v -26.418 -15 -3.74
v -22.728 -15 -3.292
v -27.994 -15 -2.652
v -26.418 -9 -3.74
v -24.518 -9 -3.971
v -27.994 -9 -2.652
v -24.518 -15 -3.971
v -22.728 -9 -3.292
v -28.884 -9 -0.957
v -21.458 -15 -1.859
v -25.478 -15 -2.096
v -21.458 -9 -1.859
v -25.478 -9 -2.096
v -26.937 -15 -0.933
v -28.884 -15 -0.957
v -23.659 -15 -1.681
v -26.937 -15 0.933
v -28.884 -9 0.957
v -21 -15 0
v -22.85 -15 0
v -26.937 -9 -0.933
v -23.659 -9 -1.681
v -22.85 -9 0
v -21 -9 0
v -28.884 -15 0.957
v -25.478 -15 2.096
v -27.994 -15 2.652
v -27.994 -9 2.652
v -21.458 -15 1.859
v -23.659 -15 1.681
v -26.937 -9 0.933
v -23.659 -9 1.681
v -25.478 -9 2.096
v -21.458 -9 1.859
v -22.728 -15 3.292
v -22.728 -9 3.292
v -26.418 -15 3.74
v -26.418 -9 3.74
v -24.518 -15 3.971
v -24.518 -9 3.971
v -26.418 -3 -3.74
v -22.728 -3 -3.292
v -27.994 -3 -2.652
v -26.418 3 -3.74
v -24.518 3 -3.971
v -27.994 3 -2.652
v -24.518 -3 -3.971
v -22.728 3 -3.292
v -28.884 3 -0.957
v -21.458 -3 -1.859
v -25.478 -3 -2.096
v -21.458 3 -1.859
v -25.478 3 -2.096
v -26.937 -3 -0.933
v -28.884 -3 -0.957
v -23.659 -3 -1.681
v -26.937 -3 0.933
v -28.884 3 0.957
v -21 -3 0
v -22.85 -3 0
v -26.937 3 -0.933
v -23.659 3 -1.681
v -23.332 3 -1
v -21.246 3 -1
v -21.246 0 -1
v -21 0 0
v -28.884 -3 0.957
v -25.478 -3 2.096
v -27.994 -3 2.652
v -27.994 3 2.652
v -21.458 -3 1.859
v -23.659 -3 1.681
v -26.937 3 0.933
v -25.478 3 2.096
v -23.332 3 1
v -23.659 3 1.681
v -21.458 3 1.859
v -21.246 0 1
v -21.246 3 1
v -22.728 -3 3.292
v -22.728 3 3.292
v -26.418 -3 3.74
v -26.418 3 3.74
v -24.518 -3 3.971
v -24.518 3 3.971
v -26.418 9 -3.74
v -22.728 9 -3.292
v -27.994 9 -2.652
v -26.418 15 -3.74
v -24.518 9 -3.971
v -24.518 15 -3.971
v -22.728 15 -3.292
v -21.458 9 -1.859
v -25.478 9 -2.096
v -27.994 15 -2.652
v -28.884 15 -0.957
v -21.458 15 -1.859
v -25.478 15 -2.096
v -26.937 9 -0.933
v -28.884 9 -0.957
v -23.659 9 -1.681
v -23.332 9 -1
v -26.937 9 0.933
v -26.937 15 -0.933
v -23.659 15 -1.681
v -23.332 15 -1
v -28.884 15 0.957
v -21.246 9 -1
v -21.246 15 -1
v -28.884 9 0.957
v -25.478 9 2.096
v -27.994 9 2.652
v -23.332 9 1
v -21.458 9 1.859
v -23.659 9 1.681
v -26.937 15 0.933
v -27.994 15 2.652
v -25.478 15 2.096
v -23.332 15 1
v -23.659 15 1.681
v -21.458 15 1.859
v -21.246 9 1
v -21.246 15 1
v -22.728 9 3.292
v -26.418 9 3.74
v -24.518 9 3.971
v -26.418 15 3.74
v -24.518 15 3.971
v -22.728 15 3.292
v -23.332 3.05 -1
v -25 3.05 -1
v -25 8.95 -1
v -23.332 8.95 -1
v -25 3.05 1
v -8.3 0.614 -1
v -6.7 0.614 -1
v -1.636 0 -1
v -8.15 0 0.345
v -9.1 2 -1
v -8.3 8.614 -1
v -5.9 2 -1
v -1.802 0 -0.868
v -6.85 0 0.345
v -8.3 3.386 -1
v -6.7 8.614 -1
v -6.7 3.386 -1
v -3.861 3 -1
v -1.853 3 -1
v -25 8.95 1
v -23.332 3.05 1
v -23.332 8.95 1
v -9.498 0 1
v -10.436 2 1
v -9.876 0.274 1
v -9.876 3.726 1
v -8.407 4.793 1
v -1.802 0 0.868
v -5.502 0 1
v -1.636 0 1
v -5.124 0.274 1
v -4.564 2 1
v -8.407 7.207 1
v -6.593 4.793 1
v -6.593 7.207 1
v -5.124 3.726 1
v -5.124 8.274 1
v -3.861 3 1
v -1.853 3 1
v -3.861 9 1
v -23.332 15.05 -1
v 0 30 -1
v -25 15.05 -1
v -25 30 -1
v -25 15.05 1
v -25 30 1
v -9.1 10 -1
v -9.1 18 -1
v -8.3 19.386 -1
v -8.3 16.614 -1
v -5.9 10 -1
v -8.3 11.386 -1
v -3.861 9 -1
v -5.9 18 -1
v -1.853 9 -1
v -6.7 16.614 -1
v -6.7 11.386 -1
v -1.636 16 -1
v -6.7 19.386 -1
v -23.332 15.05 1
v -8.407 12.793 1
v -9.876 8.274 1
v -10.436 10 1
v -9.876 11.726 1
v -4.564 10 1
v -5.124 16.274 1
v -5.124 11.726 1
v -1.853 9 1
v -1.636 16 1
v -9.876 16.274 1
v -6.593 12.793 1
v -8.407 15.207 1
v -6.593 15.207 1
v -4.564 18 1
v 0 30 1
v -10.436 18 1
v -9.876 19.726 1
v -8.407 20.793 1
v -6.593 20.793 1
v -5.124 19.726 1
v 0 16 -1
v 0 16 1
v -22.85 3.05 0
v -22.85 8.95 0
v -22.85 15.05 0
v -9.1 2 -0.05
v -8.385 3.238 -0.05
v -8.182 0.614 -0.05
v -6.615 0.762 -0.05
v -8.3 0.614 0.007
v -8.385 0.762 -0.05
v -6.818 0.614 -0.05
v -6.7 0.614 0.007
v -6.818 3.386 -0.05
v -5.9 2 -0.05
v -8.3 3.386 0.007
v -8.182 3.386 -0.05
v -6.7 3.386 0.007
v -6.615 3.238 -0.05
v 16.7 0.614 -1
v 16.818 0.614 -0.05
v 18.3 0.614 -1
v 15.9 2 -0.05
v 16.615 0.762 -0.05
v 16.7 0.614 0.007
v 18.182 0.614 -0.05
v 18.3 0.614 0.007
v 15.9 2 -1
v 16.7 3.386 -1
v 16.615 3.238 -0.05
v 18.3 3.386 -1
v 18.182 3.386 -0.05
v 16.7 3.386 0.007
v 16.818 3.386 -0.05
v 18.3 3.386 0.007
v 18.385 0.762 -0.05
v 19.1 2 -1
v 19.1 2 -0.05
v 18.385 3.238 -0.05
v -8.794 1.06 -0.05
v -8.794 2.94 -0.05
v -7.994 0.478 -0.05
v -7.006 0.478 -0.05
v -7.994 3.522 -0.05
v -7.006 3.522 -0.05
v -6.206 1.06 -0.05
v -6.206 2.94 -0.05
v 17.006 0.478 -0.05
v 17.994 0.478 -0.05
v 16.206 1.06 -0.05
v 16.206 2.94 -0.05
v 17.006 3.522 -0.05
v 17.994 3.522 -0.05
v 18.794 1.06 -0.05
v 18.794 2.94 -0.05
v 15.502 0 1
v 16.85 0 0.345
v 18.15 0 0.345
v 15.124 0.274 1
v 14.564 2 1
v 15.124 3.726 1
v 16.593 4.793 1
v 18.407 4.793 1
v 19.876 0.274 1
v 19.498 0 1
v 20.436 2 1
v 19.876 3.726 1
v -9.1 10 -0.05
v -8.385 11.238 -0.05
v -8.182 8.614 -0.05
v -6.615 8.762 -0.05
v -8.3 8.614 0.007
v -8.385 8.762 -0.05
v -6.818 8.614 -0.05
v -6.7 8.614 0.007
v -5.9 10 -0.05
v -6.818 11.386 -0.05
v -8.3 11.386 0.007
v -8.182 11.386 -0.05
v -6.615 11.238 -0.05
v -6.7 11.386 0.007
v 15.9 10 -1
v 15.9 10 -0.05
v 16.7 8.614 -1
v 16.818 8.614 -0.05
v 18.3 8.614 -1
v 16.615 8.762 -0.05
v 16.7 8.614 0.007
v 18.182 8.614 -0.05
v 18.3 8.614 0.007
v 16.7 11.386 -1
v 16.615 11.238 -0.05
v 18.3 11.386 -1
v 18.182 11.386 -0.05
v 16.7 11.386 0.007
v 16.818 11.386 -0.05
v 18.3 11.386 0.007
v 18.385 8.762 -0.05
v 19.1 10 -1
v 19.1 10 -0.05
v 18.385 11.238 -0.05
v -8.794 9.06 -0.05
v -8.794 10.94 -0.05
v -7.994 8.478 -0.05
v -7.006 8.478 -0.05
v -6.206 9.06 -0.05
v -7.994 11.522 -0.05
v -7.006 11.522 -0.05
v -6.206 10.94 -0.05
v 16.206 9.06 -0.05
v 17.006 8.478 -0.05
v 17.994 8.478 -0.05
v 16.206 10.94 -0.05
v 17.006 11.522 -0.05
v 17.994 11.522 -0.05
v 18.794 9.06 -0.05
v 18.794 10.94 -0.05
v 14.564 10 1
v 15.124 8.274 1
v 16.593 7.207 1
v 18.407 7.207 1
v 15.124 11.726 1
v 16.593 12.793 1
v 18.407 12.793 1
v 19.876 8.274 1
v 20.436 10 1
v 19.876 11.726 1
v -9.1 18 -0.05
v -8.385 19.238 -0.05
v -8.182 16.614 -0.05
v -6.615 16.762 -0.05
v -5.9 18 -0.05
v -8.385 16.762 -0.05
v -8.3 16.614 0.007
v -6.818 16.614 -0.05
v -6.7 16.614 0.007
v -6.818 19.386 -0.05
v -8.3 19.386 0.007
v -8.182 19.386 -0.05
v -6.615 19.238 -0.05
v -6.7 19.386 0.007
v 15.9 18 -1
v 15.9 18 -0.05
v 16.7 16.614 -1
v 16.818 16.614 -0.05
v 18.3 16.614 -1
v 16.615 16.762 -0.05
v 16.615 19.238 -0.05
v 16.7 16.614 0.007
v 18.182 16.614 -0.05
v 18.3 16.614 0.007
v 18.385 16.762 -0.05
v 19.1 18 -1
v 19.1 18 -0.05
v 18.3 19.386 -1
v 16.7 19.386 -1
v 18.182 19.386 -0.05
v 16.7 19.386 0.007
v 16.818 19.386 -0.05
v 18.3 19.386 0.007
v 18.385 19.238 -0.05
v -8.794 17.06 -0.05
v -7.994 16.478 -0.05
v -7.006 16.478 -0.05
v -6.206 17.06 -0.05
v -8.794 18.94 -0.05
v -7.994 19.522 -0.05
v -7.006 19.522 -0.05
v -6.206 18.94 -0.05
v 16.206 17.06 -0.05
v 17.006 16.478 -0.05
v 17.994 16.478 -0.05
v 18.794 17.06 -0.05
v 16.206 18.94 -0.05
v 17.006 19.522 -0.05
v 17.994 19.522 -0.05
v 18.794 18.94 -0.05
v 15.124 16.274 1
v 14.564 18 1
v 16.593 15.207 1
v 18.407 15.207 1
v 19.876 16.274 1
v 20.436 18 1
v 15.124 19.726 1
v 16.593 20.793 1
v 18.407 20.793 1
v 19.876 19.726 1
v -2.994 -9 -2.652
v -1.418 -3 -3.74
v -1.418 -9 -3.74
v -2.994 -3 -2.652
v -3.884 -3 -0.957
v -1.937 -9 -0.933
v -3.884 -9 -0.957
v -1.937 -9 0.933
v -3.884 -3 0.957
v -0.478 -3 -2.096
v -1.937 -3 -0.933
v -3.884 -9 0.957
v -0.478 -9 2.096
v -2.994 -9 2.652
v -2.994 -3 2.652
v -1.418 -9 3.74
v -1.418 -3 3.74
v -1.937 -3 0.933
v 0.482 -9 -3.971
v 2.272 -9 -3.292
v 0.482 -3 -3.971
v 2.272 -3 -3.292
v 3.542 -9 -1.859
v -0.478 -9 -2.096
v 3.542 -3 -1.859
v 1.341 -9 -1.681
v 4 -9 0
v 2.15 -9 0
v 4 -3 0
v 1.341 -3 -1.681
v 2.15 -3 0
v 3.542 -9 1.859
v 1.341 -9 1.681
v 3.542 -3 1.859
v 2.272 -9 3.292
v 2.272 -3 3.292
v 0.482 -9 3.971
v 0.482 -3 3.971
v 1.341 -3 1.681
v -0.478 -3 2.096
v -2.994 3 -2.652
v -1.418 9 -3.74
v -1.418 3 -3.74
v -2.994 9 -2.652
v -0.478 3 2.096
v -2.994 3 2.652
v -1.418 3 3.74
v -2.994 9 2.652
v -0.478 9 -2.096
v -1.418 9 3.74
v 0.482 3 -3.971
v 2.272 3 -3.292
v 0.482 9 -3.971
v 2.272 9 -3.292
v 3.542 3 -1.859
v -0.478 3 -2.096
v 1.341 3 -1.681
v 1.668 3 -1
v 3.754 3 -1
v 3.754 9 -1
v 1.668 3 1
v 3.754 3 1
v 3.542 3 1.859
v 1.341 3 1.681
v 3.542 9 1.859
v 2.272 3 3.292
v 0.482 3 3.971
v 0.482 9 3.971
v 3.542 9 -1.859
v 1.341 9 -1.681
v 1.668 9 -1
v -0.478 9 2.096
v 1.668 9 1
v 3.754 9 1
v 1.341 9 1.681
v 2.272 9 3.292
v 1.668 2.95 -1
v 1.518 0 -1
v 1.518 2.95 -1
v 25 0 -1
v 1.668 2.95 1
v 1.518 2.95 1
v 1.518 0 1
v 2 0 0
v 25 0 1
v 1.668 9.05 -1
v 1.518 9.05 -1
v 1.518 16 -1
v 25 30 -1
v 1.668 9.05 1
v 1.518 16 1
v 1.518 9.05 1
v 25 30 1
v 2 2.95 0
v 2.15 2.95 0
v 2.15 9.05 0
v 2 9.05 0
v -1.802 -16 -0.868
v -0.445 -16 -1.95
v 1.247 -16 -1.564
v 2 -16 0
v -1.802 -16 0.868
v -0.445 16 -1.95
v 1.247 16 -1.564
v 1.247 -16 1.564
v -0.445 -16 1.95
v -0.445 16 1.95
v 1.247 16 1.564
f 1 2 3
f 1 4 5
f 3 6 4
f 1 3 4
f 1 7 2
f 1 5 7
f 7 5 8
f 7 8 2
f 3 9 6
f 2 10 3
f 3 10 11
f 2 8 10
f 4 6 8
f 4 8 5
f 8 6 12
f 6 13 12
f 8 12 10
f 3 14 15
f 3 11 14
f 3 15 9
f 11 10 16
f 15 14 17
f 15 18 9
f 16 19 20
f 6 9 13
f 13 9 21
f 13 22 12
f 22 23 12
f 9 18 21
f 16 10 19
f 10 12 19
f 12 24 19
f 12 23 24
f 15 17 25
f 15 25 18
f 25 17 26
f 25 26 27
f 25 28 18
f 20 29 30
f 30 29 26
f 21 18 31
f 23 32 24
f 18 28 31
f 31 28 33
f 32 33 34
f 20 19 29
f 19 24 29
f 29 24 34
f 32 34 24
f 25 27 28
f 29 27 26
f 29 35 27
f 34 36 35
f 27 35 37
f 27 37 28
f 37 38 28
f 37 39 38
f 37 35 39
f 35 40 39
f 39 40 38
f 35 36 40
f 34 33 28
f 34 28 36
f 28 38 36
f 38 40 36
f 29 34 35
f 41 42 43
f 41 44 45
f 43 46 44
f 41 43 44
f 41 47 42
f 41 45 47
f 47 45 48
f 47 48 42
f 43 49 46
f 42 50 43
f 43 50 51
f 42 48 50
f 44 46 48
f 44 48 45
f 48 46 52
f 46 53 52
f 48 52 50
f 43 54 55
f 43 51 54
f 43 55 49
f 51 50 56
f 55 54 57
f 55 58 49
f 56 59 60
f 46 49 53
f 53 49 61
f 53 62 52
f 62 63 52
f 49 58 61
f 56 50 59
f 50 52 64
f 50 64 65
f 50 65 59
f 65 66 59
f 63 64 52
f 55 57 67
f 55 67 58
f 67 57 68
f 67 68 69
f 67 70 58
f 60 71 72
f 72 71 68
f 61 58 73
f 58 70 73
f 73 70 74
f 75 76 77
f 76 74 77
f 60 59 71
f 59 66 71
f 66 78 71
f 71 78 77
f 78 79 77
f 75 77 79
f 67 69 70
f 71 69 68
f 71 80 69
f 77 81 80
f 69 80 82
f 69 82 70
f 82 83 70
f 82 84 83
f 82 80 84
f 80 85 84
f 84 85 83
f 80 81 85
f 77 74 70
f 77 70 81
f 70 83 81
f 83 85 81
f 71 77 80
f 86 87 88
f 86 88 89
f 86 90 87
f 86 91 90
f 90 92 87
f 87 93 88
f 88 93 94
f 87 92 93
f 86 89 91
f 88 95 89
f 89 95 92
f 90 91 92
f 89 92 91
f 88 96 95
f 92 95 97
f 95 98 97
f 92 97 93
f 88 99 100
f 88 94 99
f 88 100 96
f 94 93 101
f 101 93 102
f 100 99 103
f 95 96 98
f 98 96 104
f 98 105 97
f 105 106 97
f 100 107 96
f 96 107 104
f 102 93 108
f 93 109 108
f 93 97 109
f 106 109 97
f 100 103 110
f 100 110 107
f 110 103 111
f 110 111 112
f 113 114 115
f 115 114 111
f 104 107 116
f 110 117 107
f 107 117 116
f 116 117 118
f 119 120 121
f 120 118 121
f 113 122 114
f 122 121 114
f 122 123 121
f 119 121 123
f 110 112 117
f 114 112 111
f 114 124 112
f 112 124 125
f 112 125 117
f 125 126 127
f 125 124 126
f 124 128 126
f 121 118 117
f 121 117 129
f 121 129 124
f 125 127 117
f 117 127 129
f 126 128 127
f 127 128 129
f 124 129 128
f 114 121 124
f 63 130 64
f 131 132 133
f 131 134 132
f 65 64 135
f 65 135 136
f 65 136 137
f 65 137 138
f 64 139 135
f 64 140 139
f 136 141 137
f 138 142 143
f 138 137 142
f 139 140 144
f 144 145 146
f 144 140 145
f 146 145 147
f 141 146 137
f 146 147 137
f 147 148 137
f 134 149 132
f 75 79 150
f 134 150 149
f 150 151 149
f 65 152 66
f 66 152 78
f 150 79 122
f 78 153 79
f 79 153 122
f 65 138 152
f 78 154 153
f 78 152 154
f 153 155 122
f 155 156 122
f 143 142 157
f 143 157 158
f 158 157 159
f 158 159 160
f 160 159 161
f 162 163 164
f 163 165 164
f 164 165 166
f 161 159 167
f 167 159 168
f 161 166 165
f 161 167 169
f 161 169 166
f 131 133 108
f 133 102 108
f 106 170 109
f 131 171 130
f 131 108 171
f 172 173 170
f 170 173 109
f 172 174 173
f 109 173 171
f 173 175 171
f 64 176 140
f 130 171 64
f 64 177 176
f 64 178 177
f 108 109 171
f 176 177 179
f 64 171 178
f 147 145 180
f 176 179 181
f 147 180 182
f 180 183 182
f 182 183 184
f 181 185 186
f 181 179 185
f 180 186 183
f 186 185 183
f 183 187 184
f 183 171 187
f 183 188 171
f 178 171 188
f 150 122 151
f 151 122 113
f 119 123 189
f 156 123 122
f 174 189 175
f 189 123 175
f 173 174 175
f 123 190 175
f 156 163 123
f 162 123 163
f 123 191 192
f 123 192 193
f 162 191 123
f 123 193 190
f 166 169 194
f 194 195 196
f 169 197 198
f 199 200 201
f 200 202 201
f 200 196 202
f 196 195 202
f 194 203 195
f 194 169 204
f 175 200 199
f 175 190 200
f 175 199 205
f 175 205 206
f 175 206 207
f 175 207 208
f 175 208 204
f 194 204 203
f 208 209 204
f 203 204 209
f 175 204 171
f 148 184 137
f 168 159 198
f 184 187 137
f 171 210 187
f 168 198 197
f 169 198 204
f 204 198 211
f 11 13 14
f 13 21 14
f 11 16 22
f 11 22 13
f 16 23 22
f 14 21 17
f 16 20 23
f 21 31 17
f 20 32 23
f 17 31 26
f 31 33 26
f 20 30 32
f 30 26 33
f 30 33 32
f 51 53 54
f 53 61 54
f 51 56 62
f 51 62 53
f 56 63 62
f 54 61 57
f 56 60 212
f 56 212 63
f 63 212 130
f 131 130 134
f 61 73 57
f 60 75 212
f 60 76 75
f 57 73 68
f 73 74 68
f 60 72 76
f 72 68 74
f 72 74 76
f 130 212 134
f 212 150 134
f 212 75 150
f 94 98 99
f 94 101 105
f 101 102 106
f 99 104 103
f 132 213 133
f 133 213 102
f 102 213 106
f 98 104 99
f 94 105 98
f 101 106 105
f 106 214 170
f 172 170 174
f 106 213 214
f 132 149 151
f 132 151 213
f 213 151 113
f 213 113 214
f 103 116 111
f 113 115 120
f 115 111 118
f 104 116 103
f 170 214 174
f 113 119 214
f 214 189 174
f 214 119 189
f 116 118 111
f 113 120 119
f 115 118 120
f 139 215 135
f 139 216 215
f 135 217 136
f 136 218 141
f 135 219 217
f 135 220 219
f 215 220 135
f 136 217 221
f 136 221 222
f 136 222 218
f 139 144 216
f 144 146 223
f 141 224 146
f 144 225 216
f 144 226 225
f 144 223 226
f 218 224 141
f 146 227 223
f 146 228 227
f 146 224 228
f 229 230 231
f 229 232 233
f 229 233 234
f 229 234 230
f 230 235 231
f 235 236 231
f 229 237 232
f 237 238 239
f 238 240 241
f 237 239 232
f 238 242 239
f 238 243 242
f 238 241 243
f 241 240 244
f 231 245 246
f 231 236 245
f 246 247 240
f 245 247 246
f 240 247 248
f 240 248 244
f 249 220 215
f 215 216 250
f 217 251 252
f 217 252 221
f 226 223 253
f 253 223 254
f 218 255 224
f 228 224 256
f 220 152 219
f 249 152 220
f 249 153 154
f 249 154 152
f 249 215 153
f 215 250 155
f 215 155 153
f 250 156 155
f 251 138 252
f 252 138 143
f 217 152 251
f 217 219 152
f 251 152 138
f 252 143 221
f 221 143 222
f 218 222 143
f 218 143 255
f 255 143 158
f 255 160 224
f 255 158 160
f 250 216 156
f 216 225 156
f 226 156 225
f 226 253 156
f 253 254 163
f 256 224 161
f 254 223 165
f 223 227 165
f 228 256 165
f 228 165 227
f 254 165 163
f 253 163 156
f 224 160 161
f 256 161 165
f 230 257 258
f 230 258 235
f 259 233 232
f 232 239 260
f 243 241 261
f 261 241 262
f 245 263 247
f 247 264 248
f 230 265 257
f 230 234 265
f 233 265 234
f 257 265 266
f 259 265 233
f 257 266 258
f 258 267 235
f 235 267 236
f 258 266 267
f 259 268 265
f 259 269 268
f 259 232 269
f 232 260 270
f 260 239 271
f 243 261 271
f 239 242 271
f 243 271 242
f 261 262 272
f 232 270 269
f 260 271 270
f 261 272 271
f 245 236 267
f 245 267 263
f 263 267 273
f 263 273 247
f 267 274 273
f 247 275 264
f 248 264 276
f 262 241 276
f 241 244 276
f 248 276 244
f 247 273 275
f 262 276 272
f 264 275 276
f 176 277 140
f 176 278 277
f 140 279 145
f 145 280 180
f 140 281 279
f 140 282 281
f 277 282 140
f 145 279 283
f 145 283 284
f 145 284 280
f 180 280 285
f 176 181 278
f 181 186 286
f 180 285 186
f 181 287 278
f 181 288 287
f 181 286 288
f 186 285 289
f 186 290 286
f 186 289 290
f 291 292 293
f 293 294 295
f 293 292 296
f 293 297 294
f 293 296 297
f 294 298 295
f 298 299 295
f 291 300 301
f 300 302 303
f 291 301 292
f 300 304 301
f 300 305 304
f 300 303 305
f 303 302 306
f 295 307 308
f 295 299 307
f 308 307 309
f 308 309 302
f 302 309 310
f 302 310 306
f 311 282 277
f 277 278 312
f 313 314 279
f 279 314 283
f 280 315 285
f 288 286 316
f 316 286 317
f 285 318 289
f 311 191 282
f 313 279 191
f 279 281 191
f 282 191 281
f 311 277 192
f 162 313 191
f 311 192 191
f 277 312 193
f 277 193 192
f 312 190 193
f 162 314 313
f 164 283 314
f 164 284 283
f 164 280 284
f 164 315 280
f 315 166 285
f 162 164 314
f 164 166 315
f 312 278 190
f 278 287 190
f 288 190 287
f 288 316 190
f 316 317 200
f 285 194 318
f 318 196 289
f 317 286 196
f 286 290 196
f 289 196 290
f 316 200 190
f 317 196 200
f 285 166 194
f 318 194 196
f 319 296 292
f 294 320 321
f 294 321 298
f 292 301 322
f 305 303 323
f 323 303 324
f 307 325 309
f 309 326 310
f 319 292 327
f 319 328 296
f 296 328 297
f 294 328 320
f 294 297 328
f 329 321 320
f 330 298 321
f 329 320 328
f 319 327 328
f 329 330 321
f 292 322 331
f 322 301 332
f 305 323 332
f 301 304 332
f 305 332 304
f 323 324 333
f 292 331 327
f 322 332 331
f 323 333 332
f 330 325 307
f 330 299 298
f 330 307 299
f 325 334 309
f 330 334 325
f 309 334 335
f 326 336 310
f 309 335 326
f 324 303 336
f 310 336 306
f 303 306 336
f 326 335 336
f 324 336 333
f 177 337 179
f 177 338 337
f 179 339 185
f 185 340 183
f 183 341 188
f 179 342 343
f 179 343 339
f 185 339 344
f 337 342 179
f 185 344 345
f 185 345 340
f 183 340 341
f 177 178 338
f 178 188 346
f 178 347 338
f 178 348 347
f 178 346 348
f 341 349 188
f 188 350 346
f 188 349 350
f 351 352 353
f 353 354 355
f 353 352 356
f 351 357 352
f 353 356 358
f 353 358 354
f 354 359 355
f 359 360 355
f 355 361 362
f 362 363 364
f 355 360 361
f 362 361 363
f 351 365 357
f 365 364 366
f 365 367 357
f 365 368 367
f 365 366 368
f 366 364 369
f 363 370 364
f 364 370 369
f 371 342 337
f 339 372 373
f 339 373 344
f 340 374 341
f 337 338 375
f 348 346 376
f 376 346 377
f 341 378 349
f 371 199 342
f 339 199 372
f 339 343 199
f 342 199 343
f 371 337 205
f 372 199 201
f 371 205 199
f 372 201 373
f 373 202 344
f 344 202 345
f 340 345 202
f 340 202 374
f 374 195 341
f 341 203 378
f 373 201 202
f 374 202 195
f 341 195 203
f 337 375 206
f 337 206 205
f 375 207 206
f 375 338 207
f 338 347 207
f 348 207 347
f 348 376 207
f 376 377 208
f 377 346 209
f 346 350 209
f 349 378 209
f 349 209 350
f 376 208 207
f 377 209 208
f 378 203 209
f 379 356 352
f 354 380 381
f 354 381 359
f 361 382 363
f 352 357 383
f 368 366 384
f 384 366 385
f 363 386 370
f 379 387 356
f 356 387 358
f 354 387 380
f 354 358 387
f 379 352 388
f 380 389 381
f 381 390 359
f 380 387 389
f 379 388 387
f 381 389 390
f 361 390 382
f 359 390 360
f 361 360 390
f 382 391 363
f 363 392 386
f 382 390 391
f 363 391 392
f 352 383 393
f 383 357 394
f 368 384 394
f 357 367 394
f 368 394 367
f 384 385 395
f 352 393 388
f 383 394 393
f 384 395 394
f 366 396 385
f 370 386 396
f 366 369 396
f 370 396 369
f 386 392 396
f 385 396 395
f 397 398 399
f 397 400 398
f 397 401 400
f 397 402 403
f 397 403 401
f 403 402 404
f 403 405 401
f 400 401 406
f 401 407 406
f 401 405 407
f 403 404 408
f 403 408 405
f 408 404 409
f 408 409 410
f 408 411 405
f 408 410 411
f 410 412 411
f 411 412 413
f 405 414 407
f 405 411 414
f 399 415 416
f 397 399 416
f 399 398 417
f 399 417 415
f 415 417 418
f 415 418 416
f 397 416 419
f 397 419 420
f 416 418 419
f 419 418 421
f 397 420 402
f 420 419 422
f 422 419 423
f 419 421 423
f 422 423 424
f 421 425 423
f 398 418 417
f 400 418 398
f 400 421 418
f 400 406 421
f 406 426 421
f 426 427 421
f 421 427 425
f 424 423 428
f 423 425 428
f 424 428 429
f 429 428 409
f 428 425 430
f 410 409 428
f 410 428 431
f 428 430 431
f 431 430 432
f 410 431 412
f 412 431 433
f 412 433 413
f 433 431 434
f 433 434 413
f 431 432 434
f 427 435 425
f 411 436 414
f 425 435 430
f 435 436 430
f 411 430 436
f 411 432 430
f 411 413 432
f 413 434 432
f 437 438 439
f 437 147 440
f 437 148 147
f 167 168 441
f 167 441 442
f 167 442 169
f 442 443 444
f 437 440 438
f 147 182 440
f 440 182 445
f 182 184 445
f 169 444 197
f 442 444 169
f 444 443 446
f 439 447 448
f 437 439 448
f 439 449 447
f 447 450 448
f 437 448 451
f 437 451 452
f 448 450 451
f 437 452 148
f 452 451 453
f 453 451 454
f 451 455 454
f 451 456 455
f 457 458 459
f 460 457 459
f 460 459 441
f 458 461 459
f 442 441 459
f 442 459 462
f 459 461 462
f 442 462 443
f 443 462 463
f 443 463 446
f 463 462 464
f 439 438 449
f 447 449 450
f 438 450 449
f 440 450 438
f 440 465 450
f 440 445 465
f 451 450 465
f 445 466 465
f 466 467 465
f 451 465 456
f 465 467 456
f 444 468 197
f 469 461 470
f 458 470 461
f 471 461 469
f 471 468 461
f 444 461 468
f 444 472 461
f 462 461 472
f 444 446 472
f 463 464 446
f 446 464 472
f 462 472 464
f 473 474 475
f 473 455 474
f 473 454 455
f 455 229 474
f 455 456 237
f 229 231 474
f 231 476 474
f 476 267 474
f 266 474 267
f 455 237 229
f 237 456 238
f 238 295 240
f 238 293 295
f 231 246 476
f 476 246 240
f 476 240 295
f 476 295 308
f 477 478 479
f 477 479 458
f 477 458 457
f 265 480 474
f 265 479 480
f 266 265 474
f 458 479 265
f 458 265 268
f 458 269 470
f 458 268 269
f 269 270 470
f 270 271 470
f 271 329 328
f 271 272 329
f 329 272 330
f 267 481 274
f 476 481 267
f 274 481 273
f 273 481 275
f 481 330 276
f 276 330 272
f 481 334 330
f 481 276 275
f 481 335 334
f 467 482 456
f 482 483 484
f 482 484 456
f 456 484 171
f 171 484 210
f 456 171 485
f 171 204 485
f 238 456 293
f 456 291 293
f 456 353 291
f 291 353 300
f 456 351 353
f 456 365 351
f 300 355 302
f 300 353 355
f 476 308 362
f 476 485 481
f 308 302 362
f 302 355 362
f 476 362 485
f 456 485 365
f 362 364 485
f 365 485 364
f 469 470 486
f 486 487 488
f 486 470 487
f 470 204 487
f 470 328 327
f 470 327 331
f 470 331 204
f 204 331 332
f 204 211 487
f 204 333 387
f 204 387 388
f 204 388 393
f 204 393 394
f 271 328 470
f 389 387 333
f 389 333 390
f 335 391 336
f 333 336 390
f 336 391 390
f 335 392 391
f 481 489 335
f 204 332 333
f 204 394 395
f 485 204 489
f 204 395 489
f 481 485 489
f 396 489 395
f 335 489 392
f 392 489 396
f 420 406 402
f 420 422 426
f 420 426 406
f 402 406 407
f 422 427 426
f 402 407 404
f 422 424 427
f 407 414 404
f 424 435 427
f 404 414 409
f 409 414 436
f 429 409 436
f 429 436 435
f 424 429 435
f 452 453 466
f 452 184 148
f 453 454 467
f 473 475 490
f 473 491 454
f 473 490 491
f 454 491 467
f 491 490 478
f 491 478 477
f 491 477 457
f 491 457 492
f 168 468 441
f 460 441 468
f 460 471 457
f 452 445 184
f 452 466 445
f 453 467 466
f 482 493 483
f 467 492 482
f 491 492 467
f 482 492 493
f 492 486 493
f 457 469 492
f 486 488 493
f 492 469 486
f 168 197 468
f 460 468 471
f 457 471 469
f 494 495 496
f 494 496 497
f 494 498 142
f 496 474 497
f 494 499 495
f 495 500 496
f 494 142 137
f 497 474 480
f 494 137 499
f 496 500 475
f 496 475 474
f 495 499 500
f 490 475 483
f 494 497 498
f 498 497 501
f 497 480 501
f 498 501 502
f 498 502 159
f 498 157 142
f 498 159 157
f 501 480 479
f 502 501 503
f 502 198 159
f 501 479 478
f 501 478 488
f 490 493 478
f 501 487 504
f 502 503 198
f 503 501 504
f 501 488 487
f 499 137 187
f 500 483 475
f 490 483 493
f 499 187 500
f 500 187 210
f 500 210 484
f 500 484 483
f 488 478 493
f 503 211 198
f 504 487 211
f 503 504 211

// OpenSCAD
// バット蝶番（180°開いた状態）

// パラメータ
leaf_width = 25;    // 板の幅
leaf_height = 30;   // 板の高さ
leaf_thickness = 2; // 板の厚み
knuckle_od = 8;     // knuckle外径
pin_diameter = 4;   // ピン軸径
pin_clearance = 0.3; // ピンクリアランス
knuckle_id = pin_diameter + pin_clearance; // knuckle内径
pin_length = 32;    // ピン軸長さ
knuckle_length = 6; // 各knuckle長さ

// 皿穴パラメータ
screw_hole_dia = 3.2;
countersink_dia = 6;
countersink_depth = 1;
screw_spacing = 8;

module leaf_with_knuckles(knuckle_positions) {
    difference() {
        union() {
            // メイン板
            translate([0, 0, -leaf_thickness/2])
                cube([leaf_width, leaf_height, leaf_thickness]);
            
            // knuckles
            for (pos = knuckle_positions) {
                translate([0, pos, 0])
                    rotate([90, 0, 0])
                        cylinder(h=knuckle_length, d=knuckle_od, center=true);
            }
        }
        
        // knuckle穴（ピン軸用）
        for (pos = knuckle_positions) {
            translate([0, pos, 0])
                rotate([90, 0, 0])
                    cylinder(h=knuckle_length+0.1, d=knuckle_id, center=true);
        }
        
        // 皿穴
        for (i = [0:2]) {
            screw_y = (leaf_height/2) - leaf_height/6 + (i-1) * screw_spacing;
            translate([leaf_width * 0.7, screw_y, 0]) {
                // 貫通穴
                cylinder(h=leaf_thickness+1, d=screw_hole_dia, center=true);
                // 皿穴
                translate([0, 0, leaf_thickness/2 - countersink_depth/2])
                    cylinder(h=countersink_depth+0.1, d1=screw_hole_dia, d2=countersink_dia, center=true);
            }
        }
    }
}

// 左板（x<0側、knuckle位置: 外側2個+中央1個）
translate([-leaf_width, 0, 0]) {
    left_knuckle_positions = [-12, 0, 12]; // Y座標
    leaf_with_knuckles(left_knuckle_positions);
}

// 右板（x>0側、knuckle位置: 中間2個）
translate([0, 0, 0]) {
    right_knuckle_positions = [-6, 6]; // Y座標
    leaf_with_knuckles(right_knuckle_positions);
}

// ピン軸
translate([0, 0, 0])
    rotate([90, 0, 0])
        cylinder(h=pin_length, d=pin_diameter, center=true);
